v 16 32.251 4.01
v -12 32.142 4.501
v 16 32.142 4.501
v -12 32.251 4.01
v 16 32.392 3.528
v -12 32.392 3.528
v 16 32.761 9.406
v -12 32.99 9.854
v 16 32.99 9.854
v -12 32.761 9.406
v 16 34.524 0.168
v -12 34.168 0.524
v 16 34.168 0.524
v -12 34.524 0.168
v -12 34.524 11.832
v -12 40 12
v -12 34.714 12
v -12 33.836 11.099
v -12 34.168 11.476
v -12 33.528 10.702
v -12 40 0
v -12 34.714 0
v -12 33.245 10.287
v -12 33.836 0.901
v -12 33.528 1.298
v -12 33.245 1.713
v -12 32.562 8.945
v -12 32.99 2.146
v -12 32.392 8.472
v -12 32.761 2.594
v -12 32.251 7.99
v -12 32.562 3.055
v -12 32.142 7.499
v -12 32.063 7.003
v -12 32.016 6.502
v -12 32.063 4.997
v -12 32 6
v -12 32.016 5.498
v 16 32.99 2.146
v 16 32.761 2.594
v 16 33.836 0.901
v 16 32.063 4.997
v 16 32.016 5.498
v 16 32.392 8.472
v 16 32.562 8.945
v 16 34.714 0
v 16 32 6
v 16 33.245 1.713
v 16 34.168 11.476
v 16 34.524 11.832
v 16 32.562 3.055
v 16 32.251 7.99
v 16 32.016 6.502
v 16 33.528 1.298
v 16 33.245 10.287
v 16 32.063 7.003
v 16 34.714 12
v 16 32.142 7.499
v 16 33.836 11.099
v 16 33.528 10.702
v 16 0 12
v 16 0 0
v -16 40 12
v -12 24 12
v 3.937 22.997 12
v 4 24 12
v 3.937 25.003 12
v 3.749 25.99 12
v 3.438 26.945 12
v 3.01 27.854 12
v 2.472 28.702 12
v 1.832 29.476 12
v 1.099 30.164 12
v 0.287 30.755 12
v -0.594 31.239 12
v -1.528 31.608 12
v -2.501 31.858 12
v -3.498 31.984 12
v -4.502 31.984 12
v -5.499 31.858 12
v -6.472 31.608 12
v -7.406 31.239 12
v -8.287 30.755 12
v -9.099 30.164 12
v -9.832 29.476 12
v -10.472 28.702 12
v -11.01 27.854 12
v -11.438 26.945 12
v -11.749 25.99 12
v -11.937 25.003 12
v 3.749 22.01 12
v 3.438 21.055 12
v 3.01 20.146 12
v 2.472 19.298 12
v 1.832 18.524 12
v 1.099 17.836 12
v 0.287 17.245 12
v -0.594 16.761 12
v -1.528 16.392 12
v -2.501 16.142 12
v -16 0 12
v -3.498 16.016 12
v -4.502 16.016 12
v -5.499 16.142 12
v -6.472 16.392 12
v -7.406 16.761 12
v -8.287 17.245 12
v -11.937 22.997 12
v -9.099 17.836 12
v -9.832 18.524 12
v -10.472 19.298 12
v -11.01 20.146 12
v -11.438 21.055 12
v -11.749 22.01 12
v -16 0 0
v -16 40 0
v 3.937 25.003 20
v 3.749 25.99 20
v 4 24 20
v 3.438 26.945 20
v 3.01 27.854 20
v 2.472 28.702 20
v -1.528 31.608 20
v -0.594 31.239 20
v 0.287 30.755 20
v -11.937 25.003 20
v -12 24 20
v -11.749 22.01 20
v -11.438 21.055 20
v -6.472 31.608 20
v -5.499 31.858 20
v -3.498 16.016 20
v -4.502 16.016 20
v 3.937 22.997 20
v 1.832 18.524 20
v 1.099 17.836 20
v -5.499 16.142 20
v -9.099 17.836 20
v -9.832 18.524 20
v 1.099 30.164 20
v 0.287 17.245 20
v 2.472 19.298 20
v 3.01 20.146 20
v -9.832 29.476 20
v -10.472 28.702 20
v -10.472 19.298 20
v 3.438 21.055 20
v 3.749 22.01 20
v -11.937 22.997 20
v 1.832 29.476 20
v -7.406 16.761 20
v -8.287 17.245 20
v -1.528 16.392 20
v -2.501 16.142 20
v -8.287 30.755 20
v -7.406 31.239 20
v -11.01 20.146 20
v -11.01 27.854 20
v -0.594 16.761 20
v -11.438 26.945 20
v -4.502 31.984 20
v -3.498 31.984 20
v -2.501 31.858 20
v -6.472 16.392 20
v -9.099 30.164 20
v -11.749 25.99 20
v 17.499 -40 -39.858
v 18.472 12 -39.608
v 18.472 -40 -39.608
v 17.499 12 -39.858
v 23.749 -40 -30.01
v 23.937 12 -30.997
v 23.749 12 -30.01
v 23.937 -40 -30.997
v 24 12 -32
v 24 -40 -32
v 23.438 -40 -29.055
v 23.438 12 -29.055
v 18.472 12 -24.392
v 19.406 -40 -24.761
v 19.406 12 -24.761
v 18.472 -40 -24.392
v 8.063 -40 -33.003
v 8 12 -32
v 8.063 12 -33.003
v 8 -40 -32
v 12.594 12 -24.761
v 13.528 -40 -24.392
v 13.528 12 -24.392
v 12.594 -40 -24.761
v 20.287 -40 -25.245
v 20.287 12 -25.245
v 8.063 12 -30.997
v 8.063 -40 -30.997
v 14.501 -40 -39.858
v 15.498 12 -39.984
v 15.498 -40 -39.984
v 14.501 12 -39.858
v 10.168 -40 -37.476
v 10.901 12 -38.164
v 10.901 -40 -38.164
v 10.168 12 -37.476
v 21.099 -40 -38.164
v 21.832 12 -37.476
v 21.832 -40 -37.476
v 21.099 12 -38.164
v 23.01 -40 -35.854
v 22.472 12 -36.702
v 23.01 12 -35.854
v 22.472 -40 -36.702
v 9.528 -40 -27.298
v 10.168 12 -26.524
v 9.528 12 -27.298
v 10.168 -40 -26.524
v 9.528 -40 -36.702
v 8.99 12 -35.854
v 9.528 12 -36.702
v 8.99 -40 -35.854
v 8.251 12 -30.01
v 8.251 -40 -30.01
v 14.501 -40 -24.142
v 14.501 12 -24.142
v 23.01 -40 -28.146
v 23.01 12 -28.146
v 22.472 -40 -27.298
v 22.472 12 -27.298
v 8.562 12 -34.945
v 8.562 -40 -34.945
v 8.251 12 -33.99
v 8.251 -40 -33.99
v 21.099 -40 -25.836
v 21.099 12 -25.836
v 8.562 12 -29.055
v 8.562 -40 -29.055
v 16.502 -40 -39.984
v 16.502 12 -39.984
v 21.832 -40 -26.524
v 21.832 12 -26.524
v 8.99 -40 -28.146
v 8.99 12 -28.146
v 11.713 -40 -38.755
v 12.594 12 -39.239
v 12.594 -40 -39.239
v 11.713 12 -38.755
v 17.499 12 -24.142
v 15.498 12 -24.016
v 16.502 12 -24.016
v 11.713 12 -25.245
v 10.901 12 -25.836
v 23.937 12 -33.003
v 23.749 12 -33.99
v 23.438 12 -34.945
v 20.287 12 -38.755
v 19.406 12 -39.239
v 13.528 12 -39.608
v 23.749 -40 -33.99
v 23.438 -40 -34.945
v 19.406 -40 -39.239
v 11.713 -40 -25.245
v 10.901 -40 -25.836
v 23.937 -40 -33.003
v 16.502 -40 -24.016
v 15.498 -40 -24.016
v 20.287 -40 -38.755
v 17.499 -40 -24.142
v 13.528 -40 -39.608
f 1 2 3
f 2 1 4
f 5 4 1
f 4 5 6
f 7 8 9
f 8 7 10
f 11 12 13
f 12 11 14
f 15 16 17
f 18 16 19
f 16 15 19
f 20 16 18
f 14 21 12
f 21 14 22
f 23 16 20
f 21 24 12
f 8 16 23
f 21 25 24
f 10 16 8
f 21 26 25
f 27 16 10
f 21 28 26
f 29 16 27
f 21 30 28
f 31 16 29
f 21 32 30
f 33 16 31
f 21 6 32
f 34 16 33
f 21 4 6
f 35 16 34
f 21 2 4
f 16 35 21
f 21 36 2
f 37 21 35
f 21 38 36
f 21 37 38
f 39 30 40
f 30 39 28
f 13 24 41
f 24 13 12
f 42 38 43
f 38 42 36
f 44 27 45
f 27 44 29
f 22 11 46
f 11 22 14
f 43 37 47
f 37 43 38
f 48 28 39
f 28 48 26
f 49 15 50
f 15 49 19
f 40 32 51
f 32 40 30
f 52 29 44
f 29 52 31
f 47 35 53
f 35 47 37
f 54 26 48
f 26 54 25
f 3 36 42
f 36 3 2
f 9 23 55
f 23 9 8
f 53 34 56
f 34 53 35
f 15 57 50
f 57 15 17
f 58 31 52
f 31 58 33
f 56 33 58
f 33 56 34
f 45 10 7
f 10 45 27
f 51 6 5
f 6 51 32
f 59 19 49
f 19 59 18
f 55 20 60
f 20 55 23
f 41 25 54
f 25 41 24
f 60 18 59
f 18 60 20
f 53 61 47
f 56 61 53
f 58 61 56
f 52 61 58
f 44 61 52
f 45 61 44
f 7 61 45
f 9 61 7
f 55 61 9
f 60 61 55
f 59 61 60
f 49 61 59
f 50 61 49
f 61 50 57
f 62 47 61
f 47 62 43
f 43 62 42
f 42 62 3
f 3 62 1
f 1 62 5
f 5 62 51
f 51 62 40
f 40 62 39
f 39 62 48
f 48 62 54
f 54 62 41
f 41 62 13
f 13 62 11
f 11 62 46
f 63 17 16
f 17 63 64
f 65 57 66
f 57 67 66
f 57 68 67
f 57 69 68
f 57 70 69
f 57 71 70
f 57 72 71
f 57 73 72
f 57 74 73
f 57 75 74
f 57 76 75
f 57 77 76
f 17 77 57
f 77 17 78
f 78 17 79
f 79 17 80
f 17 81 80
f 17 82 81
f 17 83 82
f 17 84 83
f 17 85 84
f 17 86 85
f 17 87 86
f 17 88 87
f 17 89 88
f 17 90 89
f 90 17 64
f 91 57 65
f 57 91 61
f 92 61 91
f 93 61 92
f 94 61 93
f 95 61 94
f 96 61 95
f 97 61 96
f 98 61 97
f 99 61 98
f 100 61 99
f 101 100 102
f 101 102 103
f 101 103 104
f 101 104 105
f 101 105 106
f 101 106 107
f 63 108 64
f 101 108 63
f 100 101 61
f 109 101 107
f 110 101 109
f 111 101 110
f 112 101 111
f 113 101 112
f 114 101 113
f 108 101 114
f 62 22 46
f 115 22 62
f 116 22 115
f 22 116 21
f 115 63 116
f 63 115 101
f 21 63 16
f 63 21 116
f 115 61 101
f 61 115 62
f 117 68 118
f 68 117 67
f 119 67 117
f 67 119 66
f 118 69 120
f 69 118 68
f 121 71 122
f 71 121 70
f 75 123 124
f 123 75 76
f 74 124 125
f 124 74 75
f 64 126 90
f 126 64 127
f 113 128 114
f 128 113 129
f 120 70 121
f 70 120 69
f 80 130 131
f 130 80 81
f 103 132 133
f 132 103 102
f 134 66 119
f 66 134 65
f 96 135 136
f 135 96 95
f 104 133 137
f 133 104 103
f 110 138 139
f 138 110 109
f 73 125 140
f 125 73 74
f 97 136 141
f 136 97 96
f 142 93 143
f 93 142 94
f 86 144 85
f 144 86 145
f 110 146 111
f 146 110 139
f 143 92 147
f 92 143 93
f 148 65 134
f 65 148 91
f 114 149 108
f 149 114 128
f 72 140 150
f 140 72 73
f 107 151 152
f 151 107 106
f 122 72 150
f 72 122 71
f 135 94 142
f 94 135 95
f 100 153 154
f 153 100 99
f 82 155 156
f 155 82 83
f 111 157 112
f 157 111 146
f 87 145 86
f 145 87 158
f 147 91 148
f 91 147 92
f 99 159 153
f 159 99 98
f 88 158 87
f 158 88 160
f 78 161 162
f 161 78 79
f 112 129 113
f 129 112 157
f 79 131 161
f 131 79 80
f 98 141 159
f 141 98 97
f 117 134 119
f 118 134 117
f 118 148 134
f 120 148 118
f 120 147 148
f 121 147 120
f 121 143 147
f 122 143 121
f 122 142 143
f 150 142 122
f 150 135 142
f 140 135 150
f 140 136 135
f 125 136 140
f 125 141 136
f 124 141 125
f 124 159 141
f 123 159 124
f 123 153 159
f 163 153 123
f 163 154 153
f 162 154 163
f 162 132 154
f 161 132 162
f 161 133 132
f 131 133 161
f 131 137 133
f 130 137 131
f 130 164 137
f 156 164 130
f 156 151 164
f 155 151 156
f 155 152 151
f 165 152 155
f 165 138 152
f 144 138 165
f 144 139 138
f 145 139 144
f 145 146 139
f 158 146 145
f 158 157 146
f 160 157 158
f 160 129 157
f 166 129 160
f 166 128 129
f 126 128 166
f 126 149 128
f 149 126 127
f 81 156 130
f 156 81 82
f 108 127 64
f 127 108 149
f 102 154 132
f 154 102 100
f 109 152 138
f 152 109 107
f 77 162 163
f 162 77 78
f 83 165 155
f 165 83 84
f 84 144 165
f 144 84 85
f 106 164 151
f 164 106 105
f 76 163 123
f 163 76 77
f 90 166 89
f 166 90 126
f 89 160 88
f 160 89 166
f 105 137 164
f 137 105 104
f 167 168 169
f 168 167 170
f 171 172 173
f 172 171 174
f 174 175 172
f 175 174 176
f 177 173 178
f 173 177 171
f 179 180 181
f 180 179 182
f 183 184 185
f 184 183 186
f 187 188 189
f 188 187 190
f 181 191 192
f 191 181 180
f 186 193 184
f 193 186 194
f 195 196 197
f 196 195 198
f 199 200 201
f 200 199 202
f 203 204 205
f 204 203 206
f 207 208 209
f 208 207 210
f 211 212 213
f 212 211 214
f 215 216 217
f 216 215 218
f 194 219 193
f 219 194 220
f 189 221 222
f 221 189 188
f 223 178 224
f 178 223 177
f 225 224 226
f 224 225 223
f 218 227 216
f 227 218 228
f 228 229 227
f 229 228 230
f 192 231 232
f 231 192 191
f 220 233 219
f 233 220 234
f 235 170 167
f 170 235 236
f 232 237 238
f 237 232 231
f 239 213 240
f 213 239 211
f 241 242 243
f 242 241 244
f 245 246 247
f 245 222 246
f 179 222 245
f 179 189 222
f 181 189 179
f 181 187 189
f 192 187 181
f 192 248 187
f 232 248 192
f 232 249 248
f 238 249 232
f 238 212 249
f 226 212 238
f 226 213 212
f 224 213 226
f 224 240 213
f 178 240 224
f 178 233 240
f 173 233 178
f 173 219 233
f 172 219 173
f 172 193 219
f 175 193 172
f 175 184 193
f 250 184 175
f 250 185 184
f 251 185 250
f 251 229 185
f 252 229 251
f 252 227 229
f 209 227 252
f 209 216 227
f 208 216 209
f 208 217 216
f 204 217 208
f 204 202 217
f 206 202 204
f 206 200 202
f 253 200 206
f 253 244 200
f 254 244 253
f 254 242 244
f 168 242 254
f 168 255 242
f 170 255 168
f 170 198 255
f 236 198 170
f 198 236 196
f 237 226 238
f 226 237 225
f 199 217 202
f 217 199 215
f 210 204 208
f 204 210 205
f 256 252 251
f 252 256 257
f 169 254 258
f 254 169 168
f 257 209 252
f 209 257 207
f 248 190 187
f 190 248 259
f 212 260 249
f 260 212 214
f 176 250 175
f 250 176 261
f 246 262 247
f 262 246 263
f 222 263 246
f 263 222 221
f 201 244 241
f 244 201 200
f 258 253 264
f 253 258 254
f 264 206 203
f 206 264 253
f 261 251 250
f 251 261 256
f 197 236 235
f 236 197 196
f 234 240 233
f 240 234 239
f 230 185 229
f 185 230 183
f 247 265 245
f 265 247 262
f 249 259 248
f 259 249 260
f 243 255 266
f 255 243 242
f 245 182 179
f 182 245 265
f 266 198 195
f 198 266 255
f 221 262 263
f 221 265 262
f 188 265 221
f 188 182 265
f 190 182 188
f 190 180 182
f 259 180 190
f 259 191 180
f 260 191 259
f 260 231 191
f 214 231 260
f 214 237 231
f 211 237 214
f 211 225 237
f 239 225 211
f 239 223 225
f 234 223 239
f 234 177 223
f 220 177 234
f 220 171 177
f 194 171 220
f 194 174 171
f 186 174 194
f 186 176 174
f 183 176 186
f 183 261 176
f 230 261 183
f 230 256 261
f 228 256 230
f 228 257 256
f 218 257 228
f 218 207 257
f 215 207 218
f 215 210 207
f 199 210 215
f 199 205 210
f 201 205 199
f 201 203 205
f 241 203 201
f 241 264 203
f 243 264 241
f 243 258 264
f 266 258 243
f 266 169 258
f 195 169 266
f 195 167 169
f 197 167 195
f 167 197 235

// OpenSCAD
// Define parameters for the components
module cylindrical_joint_A() {
    cylinder(h = 8, r = 8, $fn = 50); // Short cylinder with height 8 and radius 8
}

module wavy_block_B() {
    difference() {
        cube([32, 40, 12]); // Flat rectangular block
        // Add four rounded wave-like protrusions
        for (i = [0, 1, 2, 3]) {
            translate([(i * 8) + 4, 40, 6])
                rotate([0, 90, 0])
                cylinder(h = 14, r = 8, $fn = 100);
        }
    }
}

module long_cylindrical_connector_C() {
    cylinder(h = 32, r = 8, $fn = 50); // Longer cylinder with height 32 and radius 8
}

// Assemble the model based on the positional relationships
module flexible_coupling_model() {
    union() {
        // Layer 1 - Position cylindrical_joint_A
        translate([-4, 24, 12])
            cylindrical_joint_A();

        // Layer 2 - Create wavy_block_B
        translate([-16, 0, 0])
            wavy_block_B();

        // Layer 3 - Position the two long_cylindrical_connector_C components
        translate([16, 12, -32])
            rotate([90, 0, 0])
            long_cylindrical_connector_C();
        translate([16, -8, -32])
            rotate([90, 0, 0])
            long_cylindrical_connector_C();
    }
}

// Render the model
flexible_coupling_model();
